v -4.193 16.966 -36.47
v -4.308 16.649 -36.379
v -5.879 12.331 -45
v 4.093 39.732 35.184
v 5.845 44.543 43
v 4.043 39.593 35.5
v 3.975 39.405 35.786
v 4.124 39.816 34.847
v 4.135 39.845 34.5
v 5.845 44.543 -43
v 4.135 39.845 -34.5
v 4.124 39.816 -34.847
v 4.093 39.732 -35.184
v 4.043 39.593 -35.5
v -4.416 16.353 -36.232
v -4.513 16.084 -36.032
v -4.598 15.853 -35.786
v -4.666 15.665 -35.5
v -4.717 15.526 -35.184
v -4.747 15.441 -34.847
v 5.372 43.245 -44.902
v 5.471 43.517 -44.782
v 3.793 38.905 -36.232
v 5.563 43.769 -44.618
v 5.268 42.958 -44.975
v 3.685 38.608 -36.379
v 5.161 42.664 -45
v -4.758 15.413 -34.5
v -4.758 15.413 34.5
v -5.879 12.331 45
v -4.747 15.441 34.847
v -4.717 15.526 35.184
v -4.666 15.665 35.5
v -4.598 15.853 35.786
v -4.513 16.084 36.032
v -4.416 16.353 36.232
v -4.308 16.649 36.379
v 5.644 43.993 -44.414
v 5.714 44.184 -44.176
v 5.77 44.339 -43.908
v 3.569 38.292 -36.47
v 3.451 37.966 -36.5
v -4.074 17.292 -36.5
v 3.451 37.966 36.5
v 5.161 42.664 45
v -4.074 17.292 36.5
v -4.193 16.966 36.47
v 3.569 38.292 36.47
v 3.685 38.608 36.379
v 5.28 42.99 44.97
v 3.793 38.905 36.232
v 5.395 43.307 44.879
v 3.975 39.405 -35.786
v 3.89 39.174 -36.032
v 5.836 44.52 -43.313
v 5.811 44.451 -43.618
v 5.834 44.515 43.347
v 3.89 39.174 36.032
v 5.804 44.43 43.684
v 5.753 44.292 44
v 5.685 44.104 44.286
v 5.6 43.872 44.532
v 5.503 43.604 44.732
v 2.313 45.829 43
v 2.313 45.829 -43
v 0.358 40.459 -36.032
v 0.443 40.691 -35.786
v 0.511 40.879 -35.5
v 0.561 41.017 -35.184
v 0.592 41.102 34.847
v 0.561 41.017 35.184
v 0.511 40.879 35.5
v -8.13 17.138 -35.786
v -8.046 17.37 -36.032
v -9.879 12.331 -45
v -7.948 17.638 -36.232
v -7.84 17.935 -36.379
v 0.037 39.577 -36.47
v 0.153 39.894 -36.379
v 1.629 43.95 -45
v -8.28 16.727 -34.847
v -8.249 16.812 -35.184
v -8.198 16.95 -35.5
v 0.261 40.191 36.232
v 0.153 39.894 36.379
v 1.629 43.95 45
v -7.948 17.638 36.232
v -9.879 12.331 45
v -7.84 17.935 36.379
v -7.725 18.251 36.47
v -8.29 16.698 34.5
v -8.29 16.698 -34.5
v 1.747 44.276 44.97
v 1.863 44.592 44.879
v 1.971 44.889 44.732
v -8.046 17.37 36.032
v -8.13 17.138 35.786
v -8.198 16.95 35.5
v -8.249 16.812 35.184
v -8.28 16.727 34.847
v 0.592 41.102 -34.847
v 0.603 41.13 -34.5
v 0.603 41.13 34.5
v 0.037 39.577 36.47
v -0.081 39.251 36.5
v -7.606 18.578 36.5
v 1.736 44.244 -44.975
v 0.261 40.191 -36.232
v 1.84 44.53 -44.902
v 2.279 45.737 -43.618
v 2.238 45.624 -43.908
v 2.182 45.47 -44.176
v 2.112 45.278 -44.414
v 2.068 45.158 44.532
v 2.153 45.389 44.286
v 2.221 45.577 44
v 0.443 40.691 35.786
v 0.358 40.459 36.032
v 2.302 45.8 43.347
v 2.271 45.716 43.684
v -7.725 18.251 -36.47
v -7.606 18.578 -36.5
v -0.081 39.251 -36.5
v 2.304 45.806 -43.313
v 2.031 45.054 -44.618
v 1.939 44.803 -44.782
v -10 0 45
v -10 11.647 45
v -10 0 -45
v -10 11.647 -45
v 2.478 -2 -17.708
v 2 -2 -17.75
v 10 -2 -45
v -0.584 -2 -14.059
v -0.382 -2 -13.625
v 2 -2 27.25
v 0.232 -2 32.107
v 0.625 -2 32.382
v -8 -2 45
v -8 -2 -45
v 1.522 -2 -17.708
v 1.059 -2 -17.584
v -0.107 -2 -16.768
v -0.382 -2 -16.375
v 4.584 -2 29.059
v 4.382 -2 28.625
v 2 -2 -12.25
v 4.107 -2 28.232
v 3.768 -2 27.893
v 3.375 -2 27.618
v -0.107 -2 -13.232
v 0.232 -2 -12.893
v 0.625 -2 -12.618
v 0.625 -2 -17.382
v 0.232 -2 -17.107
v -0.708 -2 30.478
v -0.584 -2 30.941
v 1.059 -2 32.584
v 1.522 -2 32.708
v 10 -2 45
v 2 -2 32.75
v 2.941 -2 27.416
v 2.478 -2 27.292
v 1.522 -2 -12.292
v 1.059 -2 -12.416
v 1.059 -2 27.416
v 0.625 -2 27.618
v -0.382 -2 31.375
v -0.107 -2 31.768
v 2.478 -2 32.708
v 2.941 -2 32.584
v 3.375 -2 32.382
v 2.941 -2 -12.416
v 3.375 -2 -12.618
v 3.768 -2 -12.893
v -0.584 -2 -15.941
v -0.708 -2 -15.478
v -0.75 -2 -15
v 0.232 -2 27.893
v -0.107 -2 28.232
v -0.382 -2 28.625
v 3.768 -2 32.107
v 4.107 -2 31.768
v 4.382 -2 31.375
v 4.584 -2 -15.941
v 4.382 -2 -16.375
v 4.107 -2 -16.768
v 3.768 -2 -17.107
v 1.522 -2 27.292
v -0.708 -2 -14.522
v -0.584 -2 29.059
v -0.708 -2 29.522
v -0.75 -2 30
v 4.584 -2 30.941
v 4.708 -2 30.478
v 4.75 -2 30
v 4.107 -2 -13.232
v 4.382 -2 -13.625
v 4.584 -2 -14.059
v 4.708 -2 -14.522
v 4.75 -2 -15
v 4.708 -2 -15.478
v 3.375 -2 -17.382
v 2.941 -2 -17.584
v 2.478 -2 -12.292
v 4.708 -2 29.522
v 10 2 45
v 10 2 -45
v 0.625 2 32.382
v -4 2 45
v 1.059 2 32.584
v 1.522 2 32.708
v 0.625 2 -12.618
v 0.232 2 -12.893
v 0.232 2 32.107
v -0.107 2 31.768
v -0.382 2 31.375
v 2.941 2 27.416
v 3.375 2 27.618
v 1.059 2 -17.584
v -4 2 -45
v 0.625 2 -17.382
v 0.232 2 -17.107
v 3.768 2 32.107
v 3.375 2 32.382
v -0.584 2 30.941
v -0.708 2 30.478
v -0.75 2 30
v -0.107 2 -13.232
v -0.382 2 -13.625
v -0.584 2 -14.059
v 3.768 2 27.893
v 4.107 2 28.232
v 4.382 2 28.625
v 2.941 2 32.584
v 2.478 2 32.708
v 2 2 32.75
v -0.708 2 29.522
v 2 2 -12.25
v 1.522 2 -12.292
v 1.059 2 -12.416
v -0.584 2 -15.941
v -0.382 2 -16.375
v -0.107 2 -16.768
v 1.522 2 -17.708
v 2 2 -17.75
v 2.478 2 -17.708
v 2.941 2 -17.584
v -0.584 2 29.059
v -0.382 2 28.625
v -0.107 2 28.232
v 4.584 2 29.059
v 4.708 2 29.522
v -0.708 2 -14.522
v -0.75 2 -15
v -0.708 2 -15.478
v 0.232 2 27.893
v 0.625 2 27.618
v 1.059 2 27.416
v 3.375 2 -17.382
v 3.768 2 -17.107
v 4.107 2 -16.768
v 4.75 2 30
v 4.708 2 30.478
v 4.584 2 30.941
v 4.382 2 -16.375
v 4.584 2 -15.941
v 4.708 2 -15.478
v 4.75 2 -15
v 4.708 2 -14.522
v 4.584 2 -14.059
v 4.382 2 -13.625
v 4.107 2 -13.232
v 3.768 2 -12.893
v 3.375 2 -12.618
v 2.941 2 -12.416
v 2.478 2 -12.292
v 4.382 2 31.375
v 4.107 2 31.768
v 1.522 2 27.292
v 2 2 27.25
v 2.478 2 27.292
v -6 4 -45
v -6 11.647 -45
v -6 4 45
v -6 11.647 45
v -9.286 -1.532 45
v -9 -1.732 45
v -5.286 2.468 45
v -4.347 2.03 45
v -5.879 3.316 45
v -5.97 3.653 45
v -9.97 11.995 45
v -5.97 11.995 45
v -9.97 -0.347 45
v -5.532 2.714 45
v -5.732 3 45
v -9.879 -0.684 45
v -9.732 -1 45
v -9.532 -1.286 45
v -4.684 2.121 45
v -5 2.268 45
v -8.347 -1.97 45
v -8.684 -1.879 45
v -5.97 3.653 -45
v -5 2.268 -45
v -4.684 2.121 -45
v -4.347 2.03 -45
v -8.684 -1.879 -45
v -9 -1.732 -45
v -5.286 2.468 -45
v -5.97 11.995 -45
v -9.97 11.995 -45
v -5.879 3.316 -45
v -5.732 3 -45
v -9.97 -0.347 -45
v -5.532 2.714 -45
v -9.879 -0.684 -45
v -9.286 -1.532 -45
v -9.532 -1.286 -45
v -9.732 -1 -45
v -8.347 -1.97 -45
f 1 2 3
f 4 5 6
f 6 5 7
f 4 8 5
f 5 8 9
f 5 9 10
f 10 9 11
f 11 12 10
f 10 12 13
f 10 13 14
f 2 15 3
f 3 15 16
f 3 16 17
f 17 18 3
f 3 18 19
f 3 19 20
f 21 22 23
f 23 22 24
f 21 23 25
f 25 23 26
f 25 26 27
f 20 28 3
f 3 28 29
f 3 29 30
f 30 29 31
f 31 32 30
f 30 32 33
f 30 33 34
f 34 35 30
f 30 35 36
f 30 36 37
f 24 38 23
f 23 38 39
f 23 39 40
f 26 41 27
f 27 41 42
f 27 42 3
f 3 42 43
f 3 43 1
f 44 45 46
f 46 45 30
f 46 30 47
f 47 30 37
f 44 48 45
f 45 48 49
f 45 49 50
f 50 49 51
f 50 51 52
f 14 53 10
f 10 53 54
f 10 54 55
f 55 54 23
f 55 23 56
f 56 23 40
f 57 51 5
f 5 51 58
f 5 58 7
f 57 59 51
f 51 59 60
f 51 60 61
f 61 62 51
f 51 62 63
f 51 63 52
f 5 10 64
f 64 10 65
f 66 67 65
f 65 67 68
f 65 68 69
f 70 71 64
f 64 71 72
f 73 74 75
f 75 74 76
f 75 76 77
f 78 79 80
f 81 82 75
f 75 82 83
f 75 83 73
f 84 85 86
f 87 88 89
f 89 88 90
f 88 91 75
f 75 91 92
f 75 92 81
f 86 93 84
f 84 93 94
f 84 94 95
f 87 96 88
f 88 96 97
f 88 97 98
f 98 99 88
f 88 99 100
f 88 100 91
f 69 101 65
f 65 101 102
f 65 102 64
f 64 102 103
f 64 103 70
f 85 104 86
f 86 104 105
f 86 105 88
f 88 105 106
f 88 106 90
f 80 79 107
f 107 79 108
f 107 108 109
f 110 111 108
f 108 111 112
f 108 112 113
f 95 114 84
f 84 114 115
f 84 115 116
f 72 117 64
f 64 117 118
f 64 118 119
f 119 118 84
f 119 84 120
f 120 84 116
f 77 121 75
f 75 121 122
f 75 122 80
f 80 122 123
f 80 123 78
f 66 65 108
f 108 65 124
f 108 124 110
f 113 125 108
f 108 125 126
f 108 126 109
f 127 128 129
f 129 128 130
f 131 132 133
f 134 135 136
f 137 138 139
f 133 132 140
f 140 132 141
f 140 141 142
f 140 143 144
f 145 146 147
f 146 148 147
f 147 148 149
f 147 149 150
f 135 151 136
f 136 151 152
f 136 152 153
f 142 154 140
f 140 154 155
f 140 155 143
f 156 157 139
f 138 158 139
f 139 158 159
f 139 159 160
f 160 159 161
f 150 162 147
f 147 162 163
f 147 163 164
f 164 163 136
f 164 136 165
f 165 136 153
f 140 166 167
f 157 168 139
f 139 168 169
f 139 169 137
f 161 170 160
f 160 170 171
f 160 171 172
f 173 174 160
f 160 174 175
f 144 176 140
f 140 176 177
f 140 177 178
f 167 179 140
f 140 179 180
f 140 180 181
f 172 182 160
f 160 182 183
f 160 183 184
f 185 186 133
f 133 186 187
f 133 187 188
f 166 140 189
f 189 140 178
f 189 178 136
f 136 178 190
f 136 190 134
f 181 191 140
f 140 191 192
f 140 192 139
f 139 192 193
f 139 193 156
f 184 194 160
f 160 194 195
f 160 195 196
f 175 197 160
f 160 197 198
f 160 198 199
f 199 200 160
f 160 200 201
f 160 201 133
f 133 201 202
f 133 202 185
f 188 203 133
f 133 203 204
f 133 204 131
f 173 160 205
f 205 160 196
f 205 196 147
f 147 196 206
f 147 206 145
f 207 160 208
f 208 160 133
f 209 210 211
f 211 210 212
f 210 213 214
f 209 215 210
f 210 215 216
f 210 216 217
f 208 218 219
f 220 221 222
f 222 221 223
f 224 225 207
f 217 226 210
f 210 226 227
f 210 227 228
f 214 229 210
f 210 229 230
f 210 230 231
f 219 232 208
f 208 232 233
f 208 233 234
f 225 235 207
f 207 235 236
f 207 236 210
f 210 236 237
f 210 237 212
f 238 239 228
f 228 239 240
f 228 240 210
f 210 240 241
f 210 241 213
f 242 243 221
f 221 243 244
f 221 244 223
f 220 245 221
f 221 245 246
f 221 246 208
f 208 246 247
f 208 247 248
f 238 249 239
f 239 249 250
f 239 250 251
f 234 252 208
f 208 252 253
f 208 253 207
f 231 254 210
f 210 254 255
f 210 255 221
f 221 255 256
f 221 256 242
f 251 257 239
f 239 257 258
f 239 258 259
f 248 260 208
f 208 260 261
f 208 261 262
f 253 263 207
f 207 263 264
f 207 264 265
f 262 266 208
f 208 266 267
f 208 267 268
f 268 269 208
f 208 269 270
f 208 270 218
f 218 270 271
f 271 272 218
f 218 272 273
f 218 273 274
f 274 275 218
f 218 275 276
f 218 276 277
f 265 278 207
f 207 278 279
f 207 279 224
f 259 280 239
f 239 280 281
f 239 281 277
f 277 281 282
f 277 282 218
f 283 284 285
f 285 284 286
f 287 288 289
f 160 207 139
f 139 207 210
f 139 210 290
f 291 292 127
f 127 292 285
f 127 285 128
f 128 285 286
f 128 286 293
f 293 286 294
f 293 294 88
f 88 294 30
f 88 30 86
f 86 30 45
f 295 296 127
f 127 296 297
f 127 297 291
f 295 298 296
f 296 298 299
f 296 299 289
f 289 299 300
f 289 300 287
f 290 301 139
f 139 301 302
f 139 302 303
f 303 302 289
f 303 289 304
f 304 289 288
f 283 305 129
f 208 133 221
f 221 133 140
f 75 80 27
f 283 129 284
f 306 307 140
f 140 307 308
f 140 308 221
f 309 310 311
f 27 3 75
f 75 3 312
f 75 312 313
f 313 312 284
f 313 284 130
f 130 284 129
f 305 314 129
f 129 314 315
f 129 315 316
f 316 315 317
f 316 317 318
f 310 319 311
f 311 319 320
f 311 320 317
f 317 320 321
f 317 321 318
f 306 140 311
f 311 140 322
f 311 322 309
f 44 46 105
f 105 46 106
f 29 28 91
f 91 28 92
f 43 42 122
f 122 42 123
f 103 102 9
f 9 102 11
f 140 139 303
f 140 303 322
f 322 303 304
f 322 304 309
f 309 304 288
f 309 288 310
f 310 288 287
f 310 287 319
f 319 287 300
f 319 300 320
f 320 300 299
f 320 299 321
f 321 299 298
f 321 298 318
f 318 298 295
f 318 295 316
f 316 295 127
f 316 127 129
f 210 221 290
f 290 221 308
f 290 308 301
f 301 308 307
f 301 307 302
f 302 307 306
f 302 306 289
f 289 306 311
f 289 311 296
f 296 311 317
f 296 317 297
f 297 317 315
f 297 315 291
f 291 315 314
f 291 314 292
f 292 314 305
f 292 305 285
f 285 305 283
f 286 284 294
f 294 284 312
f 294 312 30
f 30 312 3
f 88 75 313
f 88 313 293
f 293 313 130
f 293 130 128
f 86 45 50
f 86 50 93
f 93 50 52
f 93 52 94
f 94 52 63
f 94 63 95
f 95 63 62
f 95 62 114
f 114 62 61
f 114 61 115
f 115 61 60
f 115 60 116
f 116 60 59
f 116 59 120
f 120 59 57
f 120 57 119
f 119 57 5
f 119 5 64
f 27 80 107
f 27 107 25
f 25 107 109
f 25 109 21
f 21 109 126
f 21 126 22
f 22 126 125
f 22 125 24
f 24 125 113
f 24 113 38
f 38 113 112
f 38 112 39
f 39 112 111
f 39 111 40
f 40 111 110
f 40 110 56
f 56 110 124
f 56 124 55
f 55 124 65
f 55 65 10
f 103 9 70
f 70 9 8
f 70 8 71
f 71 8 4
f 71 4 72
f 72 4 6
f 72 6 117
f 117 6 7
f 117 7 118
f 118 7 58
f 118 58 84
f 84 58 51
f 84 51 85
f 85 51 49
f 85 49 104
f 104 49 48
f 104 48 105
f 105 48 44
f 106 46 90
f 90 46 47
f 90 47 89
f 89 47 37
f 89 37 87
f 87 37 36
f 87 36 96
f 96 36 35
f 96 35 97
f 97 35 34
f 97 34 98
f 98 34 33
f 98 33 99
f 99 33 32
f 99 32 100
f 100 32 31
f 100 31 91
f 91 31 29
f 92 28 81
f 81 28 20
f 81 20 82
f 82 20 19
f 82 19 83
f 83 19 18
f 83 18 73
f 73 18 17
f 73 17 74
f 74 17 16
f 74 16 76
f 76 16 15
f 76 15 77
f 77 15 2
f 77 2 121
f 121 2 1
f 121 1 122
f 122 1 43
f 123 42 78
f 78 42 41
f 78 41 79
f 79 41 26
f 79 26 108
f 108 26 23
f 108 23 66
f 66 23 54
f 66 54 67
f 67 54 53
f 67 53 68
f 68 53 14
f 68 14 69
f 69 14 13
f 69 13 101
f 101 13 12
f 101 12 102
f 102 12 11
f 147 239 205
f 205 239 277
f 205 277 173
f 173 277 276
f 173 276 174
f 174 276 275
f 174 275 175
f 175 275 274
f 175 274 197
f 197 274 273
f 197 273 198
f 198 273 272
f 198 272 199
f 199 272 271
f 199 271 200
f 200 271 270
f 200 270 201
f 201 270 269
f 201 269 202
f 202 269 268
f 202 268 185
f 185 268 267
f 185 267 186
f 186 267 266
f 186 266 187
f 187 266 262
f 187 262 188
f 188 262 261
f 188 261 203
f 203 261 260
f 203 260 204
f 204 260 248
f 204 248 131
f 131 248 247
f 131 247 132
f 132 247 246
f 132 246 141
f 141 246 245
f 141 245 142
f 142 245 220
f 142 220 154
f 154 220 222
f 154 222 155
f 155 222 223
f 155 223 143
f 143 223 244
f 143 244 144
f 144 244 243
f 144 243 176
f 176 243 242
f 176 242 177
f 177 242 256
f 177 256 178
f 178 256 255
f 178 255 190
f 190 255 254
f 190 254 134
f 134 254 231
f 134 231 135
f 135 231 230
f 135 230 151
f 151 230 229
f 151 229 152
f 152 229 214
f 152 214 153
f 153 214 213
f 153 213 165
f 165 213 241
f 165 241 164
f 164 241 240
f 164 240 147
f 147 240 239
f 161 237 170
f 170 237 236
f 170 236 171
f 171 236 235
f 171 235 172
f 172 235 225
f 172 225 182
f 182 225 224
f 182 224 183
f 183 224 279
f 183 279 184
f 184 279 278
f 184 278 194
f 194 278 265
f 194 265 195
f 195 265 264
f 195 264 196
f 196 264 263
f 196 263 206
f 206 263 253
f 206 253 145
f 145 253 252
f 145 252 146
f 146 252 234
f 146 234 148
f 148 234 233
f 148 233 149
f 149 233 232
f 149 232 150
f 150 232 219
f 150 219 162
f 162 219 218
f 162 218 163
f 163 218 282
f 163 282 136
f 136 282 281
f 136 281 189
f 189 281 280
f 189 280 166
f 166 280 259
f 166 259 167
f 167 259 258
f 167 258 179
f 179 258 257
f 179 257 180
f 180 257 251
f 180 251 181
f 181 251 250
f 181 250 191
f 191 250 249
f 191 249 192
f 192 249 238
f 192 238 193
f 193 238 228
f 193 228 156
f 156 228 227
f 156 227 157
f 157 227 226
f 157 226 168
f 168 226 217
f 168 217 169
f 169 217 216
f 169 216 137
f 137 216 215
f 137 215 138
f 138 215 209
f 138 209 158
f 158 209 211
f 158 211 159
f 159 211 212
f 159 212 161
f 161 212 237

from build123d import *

# Parameters (mm, degrees)
SKETCH_1_W          = 4
SKETCH_1_H          = 10
SKETCH_1_W_2        = 20
SKETCH_1_H_2        = 4
EXTRUDE_1_DEPTH     = 45
SKETCH_2_W          = 73
SKETCH_2_H          = 26
CUT_EXTRUDE_1_DEPTH = 5
FILLET_1_R          = 2
SKETCH_3_R          = 2.75
CUT_EXTRUDE_2_DEPTH = 5


with BuildPart() as part:
    # 스케치1 → 보스-돌출1 (new, symmetric)
    with BuildSketch(Plane.XY):
        Polygon((5.844814046, 44.543359129), (-6, 12), (-10, 12), (2.31272516, 45.828934348), align=None)
        with Locations((-8, 7)):
            Rectangle(SKETCH_1_W, SKETCH_1_H)
        Rectangle(SKETCH_1_W_2, SKETCH_1_H_2)
    extrude(amount=EXTRUDE_1_DEPTH, both=True)

    # 스케치2 → 컷-돌출1 (cut)
    with BuildSketch(Plane(origin=(-12.686947874, 4.61767139, 0), x_dir=(0, 0, 1), z_dir=(-0.9396926207859106, 0.34202014332566244, 0))):
        with Locations((0, 25.856110016)):
            Rectangle(SKETCH_2_W, SKETCH_2_H)
    extrude(amount=-CUT_EXTRUDE_1_DEPTH, mode=Mode.SUBTRACT)

    # 필렛1
    fillet_1_edges = [part.edges().sort_by_distance(p)[0] for p in [
        (4.078769603, 45.186146739, 45),
        (4.078769603, 45.186146739, -45),
        (-6, 12, 0),
        (-6, 2, 0),
        (-10, -2, 0),
        (-10, 12, 0),
        (2.368668886, 40.487683635, 36.5),
        (-6.52385484, 16.055675494, 36.5),
        (-6.52385484, 16.055675494, -36.5),
        (2.368668886, 40.487683635, -36.5),
    ]]
    fillet(fillet_1_edges, radius=FILLET_1_R)

    # 스케치3 → 컷-돌출2 (cut)
    with BuildSketch(Plane(origin=(0, 2, 0), x_dir=(1, 0, 0), z_dir=(0, 1, 0))):
        with Locations(Location((2, -30, 0), (0, 0, 270))):
            Circle(SKETCH_3_R)
        with Locations(Location((2, 15, 0), (0, 0, 270))):
            Circle(SKETCH_3_R)
    extrude(amount=-CUT_EXTRUDE_2_DEPTH, mode=Mode.SUBTRACT)


solid = part.part
